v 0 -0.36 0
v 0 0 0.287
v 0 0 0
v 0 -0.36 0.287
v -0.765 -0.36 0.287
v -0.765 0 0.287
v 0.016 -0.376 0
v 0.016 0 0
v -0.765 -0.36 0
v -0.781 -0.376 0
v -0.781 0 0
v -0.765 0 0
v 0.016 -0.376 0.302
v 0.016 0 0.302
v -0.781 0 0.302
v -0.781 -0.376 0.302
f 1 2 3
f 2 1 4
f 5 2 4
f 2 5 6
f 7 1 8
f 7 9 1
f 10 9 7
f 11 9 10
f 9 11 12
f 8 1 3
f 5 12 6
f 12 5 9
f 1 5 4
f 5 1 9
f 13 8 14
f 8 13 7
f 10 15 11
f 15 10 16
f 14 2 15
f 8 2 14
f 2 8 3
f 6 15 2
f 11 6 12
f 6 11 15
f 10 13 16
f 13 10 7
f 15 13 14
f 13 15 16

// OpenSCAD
translate([-(0.765+0.016),-(0.36+0.016),-(1.235-0.287)]){  
    difference(){
        cube(size=[0.765+0.016*2 ,0.36+0.016, 1.25], center = false);
        
        union(){
            translate([0.016,0.016,1.235-0.287]){
                #cube([0.765,0.5, 0.287], center=false);
                };
                cube([0.765+0.016*2 ,0.36+0.016, 1.25-0.287-0.015], center=false);
        };
    };
};
